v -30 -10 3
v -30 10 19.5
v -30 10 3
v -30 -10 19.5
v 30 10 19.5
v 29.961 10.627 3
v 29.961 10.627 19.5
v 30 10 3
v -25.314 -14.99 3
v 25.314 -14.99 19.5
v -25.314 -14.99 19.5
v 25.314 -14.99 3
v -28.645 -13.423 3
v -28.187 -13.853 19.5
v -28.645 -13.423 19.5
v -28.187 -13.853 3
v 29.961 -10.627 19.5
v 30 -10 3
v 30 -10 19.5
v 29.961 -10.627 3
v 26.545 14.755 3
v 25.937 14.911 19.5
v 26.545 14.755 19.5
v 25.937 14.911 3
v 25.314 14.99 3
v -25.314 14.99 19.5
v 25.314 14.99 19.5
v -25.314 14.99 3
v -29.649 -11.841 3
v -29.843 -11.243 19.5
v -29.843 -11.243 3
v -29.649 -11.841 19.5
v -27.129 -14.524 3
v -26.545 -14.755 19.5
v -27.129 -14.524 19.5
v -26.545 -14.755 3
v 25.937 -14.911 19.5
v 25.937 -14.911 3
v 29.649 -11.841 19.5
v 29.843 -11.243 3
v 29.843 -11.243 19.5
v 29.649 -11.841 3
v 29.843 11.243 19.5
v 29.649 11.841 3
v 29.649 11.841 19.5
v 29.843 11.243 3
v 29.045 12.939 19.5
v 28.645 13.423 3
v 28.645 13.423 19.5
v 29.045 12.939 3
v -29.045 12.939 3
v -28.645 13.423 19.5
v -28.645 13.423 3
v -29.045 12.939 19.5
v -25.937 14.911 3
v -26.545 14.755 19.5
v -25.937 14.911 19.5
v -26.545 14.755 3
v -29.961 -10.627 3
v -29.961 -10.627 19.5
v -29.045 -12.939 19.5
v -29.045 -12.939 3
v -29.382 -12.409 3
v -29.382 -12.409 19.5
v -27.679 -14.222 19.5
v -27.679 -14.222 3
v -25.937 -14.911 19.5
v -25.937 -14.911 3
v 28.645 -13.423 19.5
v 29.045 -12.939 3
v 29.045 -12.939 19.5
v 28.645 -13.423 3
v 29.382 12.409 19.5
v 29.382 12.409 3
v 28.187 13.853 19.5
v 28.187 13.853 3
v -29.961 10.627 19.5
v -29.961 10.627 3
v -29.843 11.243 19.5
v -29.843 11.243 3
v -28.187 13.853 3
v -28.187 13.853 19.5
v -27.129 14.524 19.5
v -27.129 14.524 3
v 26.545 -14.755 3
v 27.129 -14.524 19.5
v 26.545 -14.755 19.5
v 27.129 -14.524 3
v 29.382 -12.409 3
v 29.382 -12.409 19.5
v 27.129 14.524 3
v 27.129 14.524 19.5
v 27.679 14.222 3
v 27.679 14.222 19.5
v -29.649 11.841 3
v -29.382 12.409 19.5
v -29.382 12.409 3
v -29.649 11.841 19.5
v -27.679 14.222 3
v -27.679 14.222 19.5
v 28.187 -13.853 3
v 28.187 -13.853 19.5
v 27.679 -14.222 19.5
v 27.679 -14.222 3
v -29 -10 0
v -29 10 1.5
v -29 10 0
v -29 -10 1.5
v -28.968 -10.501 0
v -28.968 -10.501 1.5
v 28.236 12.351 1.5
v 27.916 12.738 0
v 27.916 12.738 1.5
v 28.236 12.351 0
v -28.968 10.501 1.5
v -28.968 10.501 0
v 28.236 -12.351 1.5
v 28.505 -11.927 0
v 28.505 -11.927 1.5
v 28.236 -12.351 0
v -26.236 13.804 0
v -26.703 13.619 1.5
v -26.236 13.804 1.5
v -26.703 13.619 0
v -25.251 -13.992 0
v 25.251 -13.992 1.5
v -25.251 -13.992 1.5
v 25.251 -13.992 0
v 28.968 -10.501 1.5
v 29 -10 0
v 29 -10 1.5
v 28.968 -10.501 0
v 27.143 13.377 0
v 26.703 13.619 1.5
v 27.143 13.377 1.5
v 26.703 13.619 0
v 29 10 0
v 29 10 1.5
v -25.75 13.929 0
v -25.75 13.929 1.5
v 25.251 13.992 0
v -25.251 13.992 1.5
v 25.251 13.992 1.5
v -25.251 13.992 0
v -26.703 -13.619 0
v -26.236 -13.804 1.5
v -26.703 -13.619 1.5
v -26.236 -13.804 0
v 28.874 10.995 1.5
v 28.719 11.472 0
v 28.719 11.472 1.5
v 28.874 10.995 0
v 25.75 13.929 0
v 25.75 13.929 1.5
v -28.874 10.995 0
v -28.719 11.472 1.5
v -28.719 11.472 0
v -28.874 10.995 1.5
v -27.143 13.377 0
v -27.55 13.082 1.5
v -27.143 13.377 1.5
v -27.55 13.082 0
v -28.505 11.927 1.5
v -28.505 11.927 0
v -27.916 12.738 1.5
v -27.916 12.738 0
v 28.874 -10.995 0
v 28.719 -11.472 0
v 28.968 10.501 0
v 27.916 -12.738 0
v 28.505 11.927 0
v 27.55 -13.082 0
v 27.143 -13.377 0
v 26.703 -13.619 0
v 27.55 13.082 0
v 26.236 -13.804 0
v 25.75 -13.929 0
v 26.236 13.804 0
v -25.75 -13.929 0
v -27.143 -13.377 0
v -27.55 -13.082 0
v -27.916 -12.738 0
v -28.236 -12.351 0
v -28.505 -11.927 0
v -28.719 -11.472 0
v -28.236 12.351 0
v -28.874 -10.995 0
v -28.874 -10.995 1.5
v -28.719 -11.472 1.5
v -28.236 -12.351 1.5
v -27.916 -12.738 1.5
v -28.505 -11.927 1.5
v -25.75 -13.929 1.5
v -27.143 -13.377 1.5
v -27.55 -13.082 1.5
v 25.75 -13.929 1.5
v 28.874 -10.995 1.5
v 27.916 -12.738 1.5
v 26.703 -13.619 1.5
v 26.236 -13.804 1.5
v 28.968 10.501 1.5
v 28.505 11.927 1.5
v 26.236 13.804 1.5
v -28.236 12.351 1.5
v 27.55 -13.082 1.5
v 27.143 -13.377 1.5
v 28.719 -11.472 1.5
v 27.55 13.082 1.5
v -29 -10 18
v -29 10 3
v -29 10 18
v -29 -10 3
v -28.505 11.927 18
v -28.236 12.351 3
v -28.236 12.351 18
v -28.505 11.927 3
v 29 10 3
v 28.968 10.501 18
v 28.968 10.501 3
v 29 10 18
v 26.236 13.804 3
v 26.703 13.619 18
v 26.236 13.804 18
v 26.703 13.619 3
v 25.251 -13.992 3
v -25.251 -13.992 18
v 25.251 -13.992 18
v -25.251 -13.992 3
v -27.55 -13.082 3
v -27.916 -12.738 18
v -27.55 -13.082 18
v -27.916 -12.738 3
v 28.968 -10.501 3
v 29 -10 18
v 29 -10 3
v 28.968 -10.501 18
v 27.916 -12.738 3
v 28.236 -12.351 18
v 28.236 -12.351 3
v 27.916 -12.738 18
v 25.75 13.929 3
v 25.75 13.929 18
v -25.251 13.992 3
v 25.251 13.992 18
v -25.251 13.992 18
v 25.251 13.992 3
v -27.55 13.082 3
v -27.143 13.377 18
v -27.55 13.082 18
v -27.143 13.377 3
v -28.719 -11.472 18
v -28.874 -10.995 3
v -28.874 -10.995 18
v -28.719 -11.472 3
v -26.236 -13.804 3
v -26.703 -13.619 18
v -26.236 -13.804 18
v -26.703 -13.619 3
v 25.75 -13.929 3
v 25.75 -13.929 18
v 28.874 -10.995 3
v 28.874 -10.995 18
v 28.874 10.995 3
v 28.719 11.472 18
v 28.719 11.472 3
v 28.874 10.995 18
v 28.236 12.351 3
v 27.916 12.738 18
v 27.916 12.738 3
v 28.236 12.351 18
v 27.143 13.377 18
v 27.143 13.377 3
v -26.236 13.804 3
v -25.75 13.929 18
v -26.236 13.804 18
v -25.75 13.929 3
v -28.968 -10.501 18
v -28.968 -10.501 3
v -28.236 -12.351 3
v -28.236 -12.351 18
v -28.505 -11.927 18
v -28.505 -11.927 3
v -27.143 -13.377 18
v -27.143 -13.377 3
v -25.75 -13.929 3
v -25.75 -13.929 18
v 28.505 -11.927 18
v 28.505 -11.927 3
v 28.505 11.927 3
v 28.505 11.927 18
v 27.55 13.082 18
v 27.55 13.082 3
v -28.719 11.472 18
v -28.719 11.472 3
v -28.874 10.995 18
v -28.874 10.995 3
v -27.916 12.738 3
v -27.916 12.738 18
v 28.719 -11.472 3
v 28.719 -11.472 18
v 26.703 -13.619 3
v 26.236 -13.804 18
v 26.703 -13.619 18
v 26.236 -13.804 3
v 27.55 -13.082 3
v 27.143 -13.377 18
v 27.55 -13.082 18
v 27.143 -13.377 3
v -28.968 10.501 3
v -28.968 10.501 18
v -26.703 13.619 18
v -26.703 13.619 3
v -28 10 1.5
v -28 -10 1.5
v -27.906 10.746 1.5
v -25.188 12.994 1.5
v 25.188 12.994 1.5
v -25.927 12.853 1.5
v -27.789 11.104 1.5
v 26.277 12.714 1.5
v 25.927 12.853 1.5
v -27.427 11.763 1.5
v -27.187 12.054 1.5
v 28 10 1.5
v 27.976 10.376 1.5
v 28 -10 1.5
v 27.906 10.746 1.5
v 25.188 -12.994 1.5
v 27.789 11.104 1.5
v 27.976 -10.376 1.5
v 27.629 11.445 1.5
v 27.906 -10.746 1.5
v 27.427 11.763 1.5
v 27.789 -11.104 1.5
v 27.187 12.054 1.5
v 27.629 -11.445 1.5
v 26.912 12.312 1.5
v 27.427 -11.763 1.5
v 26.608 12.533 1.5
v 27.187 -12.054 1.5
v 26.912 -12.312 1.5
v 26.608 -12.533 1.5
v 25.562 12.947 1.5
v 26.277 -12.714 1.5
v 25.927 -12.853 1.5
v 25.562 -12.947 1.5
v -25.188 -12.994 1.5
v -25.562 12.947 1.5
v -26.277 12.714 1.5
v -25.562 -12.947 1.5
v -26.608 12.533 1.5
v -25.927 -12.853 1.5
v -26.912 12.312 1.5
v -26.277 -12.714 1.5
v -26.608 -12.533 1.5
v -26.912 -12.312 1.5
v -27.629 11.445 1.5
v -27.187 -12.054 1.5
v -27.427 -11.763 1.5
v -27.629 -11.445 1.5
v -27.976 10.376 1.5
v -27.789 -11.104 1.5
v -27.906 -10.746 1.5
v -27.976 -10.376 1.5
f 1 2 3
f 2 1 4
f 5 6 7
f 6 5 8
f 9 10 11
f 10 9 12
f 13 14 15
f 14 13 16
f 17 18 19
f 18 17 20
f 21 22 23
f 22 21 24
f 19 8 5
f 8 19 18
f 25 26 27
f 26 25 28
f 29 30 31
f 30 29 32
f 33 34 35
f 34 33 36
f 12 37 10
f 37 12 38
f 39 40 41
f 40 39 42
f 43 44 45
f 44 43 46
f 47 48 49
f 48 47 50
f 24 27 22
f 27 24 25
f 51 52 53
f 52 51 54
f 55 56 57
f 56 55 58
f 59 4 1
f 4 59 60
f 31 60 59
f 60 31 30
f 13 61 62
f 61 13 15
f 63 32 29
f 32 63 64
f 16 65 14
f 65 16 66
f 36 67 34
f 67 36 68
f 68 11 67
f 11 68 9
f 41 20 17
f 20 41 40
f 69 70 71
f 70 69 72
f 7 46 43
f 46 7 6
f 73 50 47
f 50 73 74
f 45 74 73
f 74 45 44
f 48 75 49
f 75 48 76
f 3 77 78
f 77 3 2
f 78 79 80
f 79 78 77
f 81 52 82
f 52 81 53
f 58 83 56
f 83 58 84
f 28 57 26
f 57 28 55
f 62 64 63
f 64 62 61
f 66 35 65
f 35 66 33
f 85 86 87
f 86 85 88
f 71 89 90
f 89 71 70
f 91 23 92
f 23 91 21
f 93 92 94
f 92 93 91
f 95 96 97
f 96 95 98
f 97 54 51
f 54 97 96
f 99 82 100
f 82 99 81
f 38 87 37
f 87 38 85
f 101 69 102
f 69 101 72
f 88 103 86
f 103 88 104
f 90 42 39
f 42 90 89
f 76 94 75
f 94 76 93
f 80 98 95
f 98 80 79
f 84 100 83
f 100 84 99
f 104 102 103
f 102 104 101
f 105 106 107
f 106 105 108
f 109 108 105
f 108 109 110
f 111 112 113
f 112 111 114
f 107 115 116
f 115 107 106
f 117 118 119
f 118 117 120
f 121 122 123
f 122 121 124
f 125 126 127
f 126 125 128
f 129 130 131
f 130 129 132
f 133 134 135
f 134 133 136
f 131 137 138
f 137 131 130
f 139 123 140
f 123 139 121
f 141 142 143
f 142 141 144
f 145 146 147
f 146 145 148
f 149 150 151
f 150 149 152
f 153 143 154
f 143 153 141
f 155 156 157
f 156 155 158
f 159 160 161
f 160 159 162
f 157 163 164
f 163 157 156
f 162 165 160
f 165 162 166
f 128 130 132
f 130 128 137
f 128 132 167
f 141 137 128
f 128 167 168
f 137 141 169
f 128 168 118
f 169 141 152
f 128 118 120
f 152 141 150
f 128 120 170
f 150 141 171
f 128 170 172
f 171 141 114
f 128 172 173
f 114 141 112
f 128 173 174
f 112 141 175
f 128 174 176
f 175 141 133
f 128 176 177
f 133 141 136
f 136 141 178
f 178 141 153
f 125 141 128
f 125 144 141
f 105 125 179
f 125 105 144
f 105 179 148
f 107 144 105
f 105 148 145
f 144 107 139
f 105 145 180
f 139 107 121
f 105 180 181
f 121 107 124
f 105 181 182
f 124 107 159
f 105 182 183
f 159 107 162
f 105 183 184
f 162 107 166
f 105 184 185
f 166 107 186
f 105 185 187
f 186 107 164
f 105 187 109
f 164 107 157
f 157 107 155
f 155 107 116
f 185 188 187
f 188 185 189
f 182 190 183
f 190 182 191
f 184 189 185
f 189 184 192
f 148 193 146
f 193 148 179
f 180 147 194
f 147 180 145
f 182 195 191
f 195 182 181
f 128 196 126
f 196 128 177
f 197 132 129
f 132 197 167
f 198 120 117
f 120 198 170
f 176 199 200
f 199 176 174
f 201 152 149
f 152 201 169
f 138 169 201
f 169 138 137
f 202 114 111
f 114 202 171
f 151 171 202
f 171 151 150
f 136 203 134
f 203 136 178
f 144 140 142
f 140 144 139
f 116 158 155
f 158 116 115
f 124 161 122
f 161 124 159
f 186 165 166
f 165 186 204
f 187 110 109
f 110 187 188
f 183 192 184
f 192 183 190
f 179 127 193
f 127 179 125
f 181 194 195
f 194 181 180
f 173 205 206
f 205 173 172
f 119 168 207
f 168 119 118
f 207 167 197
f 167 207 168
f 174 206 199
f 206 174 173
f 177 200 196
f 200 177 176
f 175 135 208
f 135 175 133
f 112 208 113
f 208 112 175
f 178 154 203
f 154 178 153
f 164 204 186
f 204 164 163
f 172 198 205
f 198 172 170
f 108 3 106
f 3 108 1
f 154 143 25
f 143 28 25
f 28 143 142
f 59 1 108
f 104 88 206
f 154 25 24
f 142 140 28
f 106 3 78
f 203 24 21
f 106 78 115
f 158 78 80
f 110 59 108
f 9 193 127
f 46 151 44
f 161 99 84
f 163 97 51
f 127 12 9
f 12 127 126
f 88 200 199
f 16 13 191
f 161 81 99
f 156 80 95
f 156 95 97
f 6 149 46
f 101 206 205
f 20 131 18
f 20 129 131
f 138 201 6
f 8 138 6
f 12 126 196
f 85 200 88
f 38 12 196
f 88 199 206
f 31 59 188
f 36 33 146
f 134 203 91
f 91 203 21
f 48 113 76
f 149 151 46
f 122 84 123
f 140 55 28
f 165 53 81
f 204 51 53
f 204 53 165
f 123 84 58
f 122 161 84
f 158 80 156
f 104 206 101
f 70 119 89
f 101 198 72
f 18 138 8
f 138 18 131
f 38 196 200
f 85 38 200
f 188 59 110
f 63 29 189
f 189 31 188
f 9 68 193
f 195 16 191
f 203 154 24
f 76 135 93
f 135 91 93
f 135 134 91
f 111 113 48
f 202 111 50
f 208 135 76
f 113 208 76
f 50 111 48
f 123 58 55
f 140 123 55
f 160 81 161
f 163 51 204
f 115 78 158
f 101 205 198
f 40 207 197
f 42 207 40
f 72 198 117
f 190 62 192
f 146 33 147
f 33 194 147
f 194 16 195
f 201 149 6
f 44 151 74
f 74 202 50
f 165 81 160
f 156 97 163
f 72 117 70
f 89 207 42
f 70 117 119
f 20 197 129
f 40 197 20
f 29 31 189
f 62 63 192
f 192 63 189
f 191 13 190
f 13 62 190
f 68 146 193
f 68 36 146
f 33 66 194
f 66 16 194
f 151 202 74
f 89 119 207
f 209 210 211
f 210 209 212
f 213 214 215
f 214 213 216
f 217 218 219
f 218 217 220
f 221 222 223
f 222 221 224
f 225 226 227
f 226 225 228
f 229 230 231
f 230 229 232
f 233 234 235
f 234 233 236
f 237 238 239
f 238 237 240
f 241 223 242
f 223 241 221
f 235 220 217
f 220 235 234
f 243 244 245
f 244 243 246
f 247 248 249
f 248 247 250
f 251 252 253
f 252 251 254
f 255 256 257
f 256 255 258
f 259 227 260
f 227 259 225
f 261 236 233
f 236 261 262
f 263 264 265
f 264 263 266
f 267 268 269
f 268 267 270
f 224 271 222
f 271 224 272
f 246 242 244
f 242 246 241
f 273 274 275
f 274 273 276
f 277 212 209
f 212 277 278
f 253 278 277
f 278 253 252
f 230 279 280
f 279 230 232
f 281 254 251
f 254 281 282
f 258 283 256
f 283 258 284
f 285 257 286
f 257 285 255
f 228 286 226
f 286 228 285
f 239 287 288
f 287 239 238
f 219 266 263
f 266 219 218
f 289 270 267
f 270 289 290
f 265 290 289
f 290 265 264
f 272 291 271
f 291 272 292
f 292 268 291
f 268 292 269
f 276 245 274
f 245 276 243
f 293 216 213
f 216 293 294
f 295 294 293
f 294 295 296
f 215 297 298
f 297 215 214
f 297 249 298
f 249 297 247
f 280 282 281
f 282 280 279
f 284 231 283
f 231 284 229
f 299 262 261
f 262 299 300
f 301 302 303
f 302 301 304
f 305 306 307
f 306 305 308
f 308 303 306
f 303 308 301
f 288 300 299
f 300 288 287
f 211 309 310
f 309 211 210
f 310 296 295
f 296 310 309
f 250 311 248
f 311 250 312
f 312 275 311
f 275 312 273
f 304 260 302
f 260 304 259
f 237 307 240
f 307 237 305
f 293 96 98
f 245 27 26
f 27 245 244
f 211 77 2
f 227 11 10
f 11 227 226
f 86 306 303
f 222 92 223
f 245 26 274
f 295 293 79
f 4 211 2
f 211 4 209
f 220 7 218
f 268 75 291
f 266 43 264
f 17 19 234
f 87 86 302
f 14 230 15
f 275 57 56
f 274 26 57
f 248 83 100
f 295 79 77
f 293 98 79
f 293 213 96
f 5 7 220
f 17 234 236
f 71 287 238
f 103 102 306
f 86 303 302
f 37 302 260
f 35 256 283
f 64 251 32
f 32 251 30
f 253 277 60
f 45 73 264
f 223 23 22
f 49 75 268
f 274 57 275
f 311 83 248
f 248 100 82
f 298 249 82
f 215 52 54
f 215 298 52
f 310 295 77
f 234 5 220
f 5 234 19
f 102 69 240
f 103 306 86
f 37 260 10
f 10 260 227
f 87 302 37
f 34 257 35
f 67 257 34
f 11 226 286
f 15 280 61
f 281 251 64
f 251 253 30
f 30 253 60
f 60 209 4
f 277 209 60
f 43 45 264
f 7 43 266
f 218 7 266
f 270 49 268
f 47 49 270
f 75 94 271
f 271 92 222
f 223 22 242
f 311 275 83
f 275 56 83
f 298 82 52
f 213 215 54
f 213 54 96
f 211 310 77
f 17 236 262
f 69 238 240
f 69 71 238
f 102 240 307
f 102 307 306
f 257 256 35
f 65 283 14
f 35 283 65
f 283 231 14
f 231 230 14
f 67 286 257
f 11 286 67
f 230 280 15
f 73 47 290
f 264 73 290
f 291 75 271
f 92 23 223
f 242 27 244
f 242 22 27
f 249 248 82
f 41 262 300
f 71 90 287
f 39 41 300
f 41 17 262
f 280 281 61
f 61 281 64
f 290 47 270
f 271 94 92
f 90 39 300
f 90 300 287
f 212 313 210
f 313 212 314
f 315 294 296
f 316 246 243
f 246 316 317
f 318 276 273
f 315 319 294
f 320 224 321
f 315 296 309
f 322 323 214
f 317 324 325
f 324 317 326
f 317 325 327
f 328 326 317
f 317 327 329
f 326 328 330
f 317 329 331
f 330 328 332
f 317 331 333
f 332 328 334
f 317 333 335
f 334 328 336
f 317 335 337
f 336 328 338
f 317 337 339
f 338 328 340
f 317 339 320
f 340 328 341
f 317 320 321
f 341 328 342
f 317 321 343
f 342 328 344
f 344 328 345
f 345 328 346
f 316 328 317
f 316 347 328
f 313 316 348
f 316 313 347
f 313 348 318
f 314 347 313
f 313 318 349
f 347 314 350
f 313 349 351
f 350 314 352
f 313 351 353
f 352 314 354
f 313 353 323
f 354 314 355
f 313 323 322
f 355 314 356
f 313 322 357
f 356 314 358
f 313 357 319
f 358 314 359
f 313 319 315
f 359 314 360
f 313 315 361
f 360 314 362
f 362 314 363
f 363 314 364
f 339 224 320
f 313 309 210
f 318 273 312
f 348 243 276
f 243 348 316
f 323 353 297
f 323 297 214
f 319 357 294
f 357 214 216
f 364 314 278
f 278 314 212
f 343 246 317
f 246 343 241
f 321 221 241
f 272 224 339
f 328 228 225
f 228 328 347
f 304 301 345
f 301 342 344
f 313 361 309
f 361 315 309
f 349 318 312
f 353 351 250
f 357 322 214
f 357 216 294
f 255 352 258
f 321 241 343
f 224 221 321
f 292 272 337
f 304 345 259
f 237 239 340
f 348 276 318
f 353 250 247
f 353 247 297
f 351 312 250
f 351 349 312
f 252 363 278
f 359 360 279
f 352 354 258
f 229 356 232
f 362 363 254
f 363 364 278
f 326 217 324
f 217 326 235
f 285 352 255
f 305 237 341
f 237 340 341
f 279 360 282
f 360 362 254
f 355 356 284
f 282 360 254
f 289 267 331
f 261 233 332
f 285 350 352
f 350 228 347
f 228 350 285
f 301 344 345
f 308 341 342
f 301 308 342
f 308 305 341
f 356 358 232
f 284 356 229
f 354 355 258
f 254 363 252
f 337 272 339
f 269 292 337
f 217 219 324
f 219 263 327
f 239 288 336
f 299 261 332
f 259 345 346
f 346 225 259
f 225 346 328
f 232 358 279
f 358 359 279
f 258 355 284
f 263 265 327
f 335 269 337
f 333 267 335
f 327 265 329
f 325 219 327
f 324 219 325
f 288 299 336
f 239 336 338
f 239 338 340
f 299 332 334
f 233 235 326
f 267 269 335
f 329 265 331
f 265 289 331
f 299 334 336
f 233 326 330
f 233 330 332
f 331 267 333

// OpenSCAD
$fn = 50;


difference() {
	union() {
		translate(v = [0, 0, 3.0000000000]) {
			hull() {
				translate(v = [-25.0000000000, 10.0000000000, 0]) {
					cylinder(h = 16.5000000000, r = 5);
				}
				translate(v = [25.0000000000, 10.0000000000, 0]) {
					cylinder(h = 16.5000000000, r = 5);
				}
				translate(v = [-25.0000000000, -10.0000000000, 0]) {
					cylinder(h = 16.5000000000, r = 5);
				}
				translate(v = [25.0000000000, -10.0000000000, 0]) {
					cylinder(h = 16.5000000000, r = 5);
				}
			}
		}
		hull() {
			translate(v = [-25.0000000000, 10.0000000000, 0]) {
				cylinder(h = 1.5000000000, r = 4);
			}
			translate(v = [25.0000000000, 10.0000000000, 0]) {
				cylinder(h = 1.5000000000, r = 4);
			}
			translate(v = [-25.0000000000, -10.0000000000, 0]) {
				cylinder(h = 1.5000000000, r = 4);
			}
			translate(v = [25.0000000000, -10.0000000000, 0]) {
				cylinder(h = 1.5000000000, r = 4);
			}
		}
		translate(v = [0, 0, 1.5000000000]) {
			hull() {
				translate(v = [-25.0000000000, 10.0000000000, 0]) {
					cylinder(h = 1.5000000000, r1 = 4, r2 = 5.0000000000);
				}
				translate(v = [25.0000000000, 10.0000000000, 0]) {
					cylinder(h = 1.5000000000, r1 = 4, r2 = 5.0000000000);
				}
				translate(v = [-25.0000000000, -10.0000000000, 0]) {
					cylinder(h = 1.5000000000, r1 = 4, r2 = 5.0000000000);
				}
				translate(v = [25.0000000000, -10.0000000000, 0]) {
					cylinder(h = 1.5000000000, r1 = 4, r2 = 5.0000000000);
				}
			}
		}
	}
	union() {
		translate(v = [0, 0, 3.0000000000]) {
			#hull() {
				translate(v = [-25.0000000000, 10.0000000000, 0]) {
					cylinder(h = 16.5000000000, r = 4);
				}
				translate(v = [25.0000000000, 10.0000000000, 0]) {
					cylinder(h = 16.5000000000, r = 4);
				}
				translate(v = [-25.0000000000, -10.0000000000, 0]) {
					cylinder(h = 16.5000000000, r = 4);
				}
				translate(v = [25.0000000000, -10.0000000000, 0]) {
					cylinder(h = 16.5000000000, r = 4);
				}
			}
		}
		translate(v = [0, 0, 18]) {
			hull() {
				translate(v = [-25.0000000000, 10.0000000000, 0]) {
					cylinder(h = 1.5000000000, r1 = 4, r2 = 5.0000000000);
				}
				translate(v = [25.0000000000, 10.0000000000, 0]) {
					cylinder(h = 1.5000000000, r1 = 4, r2 = 5.0000000000);
				}
				translate(v = [-25.0000000000, -10.0000000000, 0]) {
					cylinder(h = 1.5000000000, r1 = 4, r2 = 5.0000000000);
				}
				translate(v = [25.0000000000, -10.0000000000, 0]) {
					cylinder(h = 1.5000000000, r1 = 4, r2 = 5.0000000000);
				}
			}
		}
		translate(v = [0, 0, 1.5000000000]) {
			#hull() {
				translate(v = [-25.0000000000, 10.0000000000, 0]) {
					cylinder(h = 1.5000000000, r1 = 3, r2 = 4.0000000000);
				}
				translate(v = [25.0000000000, 10.0000000000, 0]) {
					cylinder(h = 1.5000000000, r1 = 3, r2 = 4.0000000000);
				}
				translate(v = [-25.0000000000, -10.0000000000, 0]) {
					cylinder(h = 1.5000000000, r1 = 3, r2 = 4.0000000000);
				}
				translate(v = [25.0000000000, -10.0000000000, 0]) {
					cylinder(h = 1.5000000000, r1 = 3, r2 = 4.0000000000);
				}
			}
		}
	}
}
